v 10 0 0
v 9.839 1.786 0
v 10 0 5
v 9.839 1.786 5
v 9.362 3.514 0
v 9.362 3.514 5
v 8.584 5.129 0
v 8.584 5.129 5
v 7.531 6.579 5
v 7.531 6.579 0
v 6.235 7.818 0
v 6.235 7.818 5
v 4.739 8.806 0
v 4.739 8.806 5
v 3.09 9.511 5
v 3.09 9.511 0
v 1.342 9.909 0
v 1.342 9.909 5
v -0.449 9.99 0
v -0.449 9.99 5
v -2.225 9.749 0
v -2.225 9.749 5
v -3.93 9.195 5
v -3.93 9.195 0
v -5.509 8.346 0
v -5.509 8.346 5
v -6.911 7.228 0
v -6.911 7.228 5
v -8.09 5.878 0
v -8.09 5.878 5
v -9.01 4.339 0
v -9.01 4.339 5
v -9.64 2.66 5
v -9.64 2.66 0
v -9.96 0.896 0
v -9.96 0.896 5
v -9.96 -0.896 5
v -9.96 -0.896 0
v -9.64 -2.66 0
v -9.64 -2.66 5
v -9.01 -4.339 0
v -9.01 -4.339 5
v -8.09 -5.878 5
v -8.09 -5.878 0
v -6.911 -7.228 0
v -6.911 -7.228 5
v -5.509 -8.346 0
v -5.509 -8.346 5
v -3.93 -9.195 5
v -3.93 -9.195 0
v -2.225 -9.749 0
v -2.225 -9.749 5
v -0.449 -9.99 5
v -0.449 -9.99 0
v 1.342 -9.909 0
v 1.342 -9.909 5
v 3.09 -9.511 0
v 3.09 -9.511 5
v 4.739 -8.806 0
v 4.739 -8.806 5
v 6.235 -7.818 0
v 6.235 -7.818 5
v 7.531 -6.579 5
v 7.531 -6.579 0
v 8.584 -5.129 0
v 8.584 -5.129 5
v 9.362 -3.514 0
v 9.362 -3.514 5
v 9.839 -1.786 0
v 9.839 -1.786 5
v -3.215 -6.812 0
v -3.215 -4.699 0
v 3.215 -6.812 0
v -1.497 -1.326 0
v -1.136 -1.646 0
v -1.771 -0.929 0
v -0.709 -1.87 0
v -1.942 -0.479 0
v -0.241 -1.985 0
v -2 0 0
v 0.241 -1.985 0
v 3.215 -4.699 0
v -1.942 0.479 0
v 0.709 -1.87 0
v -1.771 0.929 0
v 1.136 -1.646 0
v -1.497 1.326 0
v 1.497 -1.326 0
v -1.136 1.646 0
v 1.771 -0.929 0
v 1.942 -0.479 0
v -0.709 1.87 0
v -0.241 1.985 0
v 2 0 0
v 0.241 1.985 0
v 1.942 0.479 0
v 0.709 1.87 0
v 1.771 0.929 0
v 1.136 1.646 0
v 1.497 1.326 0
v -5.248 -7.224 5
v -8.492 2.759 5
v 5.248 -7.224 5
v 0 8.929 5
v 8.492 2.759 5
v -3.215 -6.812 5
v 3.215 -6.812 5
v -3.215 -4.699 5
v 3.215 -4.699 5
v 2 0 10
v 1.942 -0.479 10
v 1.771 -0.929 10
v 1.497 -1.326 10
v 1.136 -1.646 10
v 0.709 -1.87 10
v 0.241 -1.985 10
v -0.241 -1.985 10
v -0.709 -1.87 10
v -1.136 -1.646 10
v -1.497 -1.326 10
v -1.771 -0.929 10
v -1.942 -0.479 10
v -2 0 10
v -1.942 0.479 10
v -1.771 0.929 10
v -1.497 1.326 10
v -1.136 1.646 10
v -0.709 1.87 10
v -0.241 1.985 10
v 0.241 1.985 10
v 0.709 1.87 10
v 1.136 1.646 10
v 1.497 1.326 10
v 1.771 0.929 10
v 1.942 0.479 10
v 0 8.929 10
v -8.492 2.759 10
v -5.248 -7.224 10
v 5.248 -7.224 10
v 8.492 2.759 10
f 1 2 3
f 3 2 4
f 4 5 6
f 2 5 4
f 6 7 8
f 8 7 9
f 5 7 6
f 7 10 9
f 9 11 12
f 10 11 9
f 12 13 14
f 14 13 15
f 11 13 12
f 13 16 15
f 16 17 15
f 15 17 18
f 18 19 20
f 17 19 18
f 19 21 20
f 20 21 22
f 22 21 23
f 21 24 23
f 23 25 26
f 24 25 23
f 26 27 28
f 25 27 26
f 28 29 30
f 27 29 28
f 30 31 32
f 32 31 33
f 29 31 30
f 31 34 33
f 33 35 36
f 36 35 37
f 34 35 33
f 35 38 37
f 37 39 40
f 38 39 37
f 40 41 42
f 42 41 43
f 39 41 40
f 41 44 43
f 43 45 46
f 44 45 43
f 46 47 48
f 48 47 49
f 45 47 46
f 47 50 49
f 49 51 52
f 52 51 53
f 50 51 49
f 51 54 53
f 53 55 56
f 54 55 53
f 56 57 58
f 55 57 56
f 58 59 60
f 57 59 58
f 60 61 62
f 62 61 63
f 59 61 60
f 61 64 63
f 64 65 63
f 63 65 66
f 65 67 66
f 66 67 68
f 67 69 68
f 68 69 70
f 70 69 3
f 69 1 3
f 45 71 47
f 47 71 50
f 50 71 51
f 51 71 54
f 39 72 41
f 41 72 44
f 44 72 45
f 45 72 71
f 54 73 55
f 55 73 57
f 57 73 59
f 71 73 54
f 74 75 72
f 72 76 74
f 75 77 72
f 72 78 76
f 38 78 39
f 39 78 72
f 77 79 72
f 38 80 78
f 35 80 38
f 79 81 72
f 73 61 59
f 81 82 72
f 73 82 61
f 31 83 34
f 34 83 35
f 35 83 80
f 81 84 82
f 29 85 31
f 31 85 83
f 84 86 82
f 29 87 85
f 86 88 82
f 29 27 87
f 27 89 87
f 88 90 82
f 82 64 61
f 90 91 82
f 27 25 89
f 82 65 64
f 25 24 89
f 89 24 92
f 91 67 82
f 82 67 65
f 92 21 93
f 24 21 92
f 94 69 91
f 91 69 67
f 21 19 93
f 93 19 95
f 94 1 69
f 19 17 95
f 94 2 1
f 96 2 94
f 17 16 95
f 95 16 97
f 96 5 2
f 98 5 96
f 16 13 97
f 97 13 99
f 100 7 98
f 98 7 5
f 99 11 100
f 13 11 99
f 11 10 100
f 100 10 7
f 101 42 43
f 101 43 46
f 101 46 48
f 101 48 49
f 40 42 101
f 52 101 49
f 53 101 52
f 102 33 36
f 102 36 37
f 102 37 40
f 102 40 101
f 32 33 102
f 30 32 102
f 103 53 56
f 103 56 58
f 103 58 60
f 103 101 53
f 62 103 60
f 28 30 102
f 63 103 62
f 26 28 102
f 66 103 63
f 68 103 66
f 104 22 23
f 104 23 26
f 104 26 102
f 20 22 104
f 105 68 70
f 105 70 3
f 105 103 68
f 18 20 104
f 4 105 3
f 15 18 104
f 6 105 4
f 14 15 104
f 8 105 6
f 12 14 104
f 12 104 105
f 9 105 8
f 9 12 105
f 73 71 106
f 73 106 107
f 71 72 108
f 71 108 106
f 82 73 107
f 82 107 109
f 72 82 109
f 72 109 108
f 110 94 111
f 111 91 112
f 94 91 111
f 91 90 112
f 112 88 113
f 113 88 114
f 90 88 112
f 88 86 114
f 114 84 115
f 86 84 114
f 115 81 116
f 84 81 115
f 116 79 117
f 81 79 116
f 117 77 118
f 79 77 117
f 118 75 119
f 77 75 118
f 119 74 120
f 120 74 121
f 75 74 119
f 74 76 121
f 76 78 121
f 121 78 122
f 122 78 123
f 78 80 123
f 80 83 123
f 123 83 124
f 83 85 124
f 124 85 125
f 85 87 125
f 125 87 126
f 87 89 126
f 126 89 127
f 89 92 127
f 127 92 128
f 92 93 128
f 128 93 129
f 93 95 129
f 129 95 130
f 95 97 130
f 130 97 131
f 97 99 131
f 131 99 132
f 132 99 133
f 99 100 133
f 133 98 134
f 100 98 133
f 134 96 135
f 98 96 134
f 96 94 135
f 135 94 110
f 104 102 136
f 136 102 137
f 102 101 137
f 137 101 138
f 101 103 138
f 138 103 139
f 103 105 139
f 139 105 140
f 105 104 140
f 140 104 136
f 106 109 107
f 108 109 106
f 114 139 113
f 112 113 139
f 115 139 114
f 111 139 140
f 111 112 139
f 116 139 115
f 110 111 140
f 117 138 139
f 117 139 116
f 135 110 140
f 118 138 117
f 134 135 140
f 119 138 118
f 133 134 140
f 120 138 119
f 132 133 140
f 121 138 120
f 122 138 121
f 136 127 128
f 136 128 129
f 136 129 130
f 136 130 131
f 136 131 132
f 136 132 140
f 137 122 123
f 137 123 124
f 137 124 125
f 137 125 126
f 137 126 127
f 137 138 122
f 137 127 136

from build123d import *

# Parameters (mm, degrees)
SKETCH_R        = 10
PAD_DEPTH       = 5
PAD001_DEPTH    = 5
SKETCH002_W     = 6.429408
SKETCH002_H     = 2.113688
POCKET_DEPTH    = 5
SKETCH003_R     = 2
POCKET001_DEPTH = 10.001


with BuildPart() as part:
    # Sketch → Pad (new body)
    with BuildSketch(Plane.XY):
        Circle(SKETCH_R)
    extrude(amount=PAD_DEPTH)

    # Sketch001 (on Face3 of Pad) → Pad001 (join)
    with BuildSketch(Plane.XY.offset(5)):
        Polygon((0, 8.928971), (-8.491956, 2.759204), (-5.248317, -7.223689), (5.248317, -7.223689), (8.491956, 2.759204), align=None)
    extrude(amount=PAD001_DEPTH)

    # Sketch002 (on Face2 of Pad001) → Pocket (cut)
    with BuildSketch(Plane(origin=(0, 0, 0), x_dir=(1, 0, 0), z_dir=(0, 0, -1))):
        with Locations((0, 5.755642)):
            Rectangle(SKETCH002_W, SKETCH002_H)
    extrude(amount=-POCKET_DEPTH, mode=Mode.SUBTRACT)

    # Sketch003 (on Face2 of Pocket) → Pocket001 (cut, through all)
    with BuildSketch(Plane(origin=(0, 0, 0), x_dir=(1, 0, 0), z_dir=(0, 0, -1))):
        Circle(SKETCH003_R)
    extrude(amount=-POCKET001_DEPTH, mode=Mode.SUBTRACT)


solid = part.part
